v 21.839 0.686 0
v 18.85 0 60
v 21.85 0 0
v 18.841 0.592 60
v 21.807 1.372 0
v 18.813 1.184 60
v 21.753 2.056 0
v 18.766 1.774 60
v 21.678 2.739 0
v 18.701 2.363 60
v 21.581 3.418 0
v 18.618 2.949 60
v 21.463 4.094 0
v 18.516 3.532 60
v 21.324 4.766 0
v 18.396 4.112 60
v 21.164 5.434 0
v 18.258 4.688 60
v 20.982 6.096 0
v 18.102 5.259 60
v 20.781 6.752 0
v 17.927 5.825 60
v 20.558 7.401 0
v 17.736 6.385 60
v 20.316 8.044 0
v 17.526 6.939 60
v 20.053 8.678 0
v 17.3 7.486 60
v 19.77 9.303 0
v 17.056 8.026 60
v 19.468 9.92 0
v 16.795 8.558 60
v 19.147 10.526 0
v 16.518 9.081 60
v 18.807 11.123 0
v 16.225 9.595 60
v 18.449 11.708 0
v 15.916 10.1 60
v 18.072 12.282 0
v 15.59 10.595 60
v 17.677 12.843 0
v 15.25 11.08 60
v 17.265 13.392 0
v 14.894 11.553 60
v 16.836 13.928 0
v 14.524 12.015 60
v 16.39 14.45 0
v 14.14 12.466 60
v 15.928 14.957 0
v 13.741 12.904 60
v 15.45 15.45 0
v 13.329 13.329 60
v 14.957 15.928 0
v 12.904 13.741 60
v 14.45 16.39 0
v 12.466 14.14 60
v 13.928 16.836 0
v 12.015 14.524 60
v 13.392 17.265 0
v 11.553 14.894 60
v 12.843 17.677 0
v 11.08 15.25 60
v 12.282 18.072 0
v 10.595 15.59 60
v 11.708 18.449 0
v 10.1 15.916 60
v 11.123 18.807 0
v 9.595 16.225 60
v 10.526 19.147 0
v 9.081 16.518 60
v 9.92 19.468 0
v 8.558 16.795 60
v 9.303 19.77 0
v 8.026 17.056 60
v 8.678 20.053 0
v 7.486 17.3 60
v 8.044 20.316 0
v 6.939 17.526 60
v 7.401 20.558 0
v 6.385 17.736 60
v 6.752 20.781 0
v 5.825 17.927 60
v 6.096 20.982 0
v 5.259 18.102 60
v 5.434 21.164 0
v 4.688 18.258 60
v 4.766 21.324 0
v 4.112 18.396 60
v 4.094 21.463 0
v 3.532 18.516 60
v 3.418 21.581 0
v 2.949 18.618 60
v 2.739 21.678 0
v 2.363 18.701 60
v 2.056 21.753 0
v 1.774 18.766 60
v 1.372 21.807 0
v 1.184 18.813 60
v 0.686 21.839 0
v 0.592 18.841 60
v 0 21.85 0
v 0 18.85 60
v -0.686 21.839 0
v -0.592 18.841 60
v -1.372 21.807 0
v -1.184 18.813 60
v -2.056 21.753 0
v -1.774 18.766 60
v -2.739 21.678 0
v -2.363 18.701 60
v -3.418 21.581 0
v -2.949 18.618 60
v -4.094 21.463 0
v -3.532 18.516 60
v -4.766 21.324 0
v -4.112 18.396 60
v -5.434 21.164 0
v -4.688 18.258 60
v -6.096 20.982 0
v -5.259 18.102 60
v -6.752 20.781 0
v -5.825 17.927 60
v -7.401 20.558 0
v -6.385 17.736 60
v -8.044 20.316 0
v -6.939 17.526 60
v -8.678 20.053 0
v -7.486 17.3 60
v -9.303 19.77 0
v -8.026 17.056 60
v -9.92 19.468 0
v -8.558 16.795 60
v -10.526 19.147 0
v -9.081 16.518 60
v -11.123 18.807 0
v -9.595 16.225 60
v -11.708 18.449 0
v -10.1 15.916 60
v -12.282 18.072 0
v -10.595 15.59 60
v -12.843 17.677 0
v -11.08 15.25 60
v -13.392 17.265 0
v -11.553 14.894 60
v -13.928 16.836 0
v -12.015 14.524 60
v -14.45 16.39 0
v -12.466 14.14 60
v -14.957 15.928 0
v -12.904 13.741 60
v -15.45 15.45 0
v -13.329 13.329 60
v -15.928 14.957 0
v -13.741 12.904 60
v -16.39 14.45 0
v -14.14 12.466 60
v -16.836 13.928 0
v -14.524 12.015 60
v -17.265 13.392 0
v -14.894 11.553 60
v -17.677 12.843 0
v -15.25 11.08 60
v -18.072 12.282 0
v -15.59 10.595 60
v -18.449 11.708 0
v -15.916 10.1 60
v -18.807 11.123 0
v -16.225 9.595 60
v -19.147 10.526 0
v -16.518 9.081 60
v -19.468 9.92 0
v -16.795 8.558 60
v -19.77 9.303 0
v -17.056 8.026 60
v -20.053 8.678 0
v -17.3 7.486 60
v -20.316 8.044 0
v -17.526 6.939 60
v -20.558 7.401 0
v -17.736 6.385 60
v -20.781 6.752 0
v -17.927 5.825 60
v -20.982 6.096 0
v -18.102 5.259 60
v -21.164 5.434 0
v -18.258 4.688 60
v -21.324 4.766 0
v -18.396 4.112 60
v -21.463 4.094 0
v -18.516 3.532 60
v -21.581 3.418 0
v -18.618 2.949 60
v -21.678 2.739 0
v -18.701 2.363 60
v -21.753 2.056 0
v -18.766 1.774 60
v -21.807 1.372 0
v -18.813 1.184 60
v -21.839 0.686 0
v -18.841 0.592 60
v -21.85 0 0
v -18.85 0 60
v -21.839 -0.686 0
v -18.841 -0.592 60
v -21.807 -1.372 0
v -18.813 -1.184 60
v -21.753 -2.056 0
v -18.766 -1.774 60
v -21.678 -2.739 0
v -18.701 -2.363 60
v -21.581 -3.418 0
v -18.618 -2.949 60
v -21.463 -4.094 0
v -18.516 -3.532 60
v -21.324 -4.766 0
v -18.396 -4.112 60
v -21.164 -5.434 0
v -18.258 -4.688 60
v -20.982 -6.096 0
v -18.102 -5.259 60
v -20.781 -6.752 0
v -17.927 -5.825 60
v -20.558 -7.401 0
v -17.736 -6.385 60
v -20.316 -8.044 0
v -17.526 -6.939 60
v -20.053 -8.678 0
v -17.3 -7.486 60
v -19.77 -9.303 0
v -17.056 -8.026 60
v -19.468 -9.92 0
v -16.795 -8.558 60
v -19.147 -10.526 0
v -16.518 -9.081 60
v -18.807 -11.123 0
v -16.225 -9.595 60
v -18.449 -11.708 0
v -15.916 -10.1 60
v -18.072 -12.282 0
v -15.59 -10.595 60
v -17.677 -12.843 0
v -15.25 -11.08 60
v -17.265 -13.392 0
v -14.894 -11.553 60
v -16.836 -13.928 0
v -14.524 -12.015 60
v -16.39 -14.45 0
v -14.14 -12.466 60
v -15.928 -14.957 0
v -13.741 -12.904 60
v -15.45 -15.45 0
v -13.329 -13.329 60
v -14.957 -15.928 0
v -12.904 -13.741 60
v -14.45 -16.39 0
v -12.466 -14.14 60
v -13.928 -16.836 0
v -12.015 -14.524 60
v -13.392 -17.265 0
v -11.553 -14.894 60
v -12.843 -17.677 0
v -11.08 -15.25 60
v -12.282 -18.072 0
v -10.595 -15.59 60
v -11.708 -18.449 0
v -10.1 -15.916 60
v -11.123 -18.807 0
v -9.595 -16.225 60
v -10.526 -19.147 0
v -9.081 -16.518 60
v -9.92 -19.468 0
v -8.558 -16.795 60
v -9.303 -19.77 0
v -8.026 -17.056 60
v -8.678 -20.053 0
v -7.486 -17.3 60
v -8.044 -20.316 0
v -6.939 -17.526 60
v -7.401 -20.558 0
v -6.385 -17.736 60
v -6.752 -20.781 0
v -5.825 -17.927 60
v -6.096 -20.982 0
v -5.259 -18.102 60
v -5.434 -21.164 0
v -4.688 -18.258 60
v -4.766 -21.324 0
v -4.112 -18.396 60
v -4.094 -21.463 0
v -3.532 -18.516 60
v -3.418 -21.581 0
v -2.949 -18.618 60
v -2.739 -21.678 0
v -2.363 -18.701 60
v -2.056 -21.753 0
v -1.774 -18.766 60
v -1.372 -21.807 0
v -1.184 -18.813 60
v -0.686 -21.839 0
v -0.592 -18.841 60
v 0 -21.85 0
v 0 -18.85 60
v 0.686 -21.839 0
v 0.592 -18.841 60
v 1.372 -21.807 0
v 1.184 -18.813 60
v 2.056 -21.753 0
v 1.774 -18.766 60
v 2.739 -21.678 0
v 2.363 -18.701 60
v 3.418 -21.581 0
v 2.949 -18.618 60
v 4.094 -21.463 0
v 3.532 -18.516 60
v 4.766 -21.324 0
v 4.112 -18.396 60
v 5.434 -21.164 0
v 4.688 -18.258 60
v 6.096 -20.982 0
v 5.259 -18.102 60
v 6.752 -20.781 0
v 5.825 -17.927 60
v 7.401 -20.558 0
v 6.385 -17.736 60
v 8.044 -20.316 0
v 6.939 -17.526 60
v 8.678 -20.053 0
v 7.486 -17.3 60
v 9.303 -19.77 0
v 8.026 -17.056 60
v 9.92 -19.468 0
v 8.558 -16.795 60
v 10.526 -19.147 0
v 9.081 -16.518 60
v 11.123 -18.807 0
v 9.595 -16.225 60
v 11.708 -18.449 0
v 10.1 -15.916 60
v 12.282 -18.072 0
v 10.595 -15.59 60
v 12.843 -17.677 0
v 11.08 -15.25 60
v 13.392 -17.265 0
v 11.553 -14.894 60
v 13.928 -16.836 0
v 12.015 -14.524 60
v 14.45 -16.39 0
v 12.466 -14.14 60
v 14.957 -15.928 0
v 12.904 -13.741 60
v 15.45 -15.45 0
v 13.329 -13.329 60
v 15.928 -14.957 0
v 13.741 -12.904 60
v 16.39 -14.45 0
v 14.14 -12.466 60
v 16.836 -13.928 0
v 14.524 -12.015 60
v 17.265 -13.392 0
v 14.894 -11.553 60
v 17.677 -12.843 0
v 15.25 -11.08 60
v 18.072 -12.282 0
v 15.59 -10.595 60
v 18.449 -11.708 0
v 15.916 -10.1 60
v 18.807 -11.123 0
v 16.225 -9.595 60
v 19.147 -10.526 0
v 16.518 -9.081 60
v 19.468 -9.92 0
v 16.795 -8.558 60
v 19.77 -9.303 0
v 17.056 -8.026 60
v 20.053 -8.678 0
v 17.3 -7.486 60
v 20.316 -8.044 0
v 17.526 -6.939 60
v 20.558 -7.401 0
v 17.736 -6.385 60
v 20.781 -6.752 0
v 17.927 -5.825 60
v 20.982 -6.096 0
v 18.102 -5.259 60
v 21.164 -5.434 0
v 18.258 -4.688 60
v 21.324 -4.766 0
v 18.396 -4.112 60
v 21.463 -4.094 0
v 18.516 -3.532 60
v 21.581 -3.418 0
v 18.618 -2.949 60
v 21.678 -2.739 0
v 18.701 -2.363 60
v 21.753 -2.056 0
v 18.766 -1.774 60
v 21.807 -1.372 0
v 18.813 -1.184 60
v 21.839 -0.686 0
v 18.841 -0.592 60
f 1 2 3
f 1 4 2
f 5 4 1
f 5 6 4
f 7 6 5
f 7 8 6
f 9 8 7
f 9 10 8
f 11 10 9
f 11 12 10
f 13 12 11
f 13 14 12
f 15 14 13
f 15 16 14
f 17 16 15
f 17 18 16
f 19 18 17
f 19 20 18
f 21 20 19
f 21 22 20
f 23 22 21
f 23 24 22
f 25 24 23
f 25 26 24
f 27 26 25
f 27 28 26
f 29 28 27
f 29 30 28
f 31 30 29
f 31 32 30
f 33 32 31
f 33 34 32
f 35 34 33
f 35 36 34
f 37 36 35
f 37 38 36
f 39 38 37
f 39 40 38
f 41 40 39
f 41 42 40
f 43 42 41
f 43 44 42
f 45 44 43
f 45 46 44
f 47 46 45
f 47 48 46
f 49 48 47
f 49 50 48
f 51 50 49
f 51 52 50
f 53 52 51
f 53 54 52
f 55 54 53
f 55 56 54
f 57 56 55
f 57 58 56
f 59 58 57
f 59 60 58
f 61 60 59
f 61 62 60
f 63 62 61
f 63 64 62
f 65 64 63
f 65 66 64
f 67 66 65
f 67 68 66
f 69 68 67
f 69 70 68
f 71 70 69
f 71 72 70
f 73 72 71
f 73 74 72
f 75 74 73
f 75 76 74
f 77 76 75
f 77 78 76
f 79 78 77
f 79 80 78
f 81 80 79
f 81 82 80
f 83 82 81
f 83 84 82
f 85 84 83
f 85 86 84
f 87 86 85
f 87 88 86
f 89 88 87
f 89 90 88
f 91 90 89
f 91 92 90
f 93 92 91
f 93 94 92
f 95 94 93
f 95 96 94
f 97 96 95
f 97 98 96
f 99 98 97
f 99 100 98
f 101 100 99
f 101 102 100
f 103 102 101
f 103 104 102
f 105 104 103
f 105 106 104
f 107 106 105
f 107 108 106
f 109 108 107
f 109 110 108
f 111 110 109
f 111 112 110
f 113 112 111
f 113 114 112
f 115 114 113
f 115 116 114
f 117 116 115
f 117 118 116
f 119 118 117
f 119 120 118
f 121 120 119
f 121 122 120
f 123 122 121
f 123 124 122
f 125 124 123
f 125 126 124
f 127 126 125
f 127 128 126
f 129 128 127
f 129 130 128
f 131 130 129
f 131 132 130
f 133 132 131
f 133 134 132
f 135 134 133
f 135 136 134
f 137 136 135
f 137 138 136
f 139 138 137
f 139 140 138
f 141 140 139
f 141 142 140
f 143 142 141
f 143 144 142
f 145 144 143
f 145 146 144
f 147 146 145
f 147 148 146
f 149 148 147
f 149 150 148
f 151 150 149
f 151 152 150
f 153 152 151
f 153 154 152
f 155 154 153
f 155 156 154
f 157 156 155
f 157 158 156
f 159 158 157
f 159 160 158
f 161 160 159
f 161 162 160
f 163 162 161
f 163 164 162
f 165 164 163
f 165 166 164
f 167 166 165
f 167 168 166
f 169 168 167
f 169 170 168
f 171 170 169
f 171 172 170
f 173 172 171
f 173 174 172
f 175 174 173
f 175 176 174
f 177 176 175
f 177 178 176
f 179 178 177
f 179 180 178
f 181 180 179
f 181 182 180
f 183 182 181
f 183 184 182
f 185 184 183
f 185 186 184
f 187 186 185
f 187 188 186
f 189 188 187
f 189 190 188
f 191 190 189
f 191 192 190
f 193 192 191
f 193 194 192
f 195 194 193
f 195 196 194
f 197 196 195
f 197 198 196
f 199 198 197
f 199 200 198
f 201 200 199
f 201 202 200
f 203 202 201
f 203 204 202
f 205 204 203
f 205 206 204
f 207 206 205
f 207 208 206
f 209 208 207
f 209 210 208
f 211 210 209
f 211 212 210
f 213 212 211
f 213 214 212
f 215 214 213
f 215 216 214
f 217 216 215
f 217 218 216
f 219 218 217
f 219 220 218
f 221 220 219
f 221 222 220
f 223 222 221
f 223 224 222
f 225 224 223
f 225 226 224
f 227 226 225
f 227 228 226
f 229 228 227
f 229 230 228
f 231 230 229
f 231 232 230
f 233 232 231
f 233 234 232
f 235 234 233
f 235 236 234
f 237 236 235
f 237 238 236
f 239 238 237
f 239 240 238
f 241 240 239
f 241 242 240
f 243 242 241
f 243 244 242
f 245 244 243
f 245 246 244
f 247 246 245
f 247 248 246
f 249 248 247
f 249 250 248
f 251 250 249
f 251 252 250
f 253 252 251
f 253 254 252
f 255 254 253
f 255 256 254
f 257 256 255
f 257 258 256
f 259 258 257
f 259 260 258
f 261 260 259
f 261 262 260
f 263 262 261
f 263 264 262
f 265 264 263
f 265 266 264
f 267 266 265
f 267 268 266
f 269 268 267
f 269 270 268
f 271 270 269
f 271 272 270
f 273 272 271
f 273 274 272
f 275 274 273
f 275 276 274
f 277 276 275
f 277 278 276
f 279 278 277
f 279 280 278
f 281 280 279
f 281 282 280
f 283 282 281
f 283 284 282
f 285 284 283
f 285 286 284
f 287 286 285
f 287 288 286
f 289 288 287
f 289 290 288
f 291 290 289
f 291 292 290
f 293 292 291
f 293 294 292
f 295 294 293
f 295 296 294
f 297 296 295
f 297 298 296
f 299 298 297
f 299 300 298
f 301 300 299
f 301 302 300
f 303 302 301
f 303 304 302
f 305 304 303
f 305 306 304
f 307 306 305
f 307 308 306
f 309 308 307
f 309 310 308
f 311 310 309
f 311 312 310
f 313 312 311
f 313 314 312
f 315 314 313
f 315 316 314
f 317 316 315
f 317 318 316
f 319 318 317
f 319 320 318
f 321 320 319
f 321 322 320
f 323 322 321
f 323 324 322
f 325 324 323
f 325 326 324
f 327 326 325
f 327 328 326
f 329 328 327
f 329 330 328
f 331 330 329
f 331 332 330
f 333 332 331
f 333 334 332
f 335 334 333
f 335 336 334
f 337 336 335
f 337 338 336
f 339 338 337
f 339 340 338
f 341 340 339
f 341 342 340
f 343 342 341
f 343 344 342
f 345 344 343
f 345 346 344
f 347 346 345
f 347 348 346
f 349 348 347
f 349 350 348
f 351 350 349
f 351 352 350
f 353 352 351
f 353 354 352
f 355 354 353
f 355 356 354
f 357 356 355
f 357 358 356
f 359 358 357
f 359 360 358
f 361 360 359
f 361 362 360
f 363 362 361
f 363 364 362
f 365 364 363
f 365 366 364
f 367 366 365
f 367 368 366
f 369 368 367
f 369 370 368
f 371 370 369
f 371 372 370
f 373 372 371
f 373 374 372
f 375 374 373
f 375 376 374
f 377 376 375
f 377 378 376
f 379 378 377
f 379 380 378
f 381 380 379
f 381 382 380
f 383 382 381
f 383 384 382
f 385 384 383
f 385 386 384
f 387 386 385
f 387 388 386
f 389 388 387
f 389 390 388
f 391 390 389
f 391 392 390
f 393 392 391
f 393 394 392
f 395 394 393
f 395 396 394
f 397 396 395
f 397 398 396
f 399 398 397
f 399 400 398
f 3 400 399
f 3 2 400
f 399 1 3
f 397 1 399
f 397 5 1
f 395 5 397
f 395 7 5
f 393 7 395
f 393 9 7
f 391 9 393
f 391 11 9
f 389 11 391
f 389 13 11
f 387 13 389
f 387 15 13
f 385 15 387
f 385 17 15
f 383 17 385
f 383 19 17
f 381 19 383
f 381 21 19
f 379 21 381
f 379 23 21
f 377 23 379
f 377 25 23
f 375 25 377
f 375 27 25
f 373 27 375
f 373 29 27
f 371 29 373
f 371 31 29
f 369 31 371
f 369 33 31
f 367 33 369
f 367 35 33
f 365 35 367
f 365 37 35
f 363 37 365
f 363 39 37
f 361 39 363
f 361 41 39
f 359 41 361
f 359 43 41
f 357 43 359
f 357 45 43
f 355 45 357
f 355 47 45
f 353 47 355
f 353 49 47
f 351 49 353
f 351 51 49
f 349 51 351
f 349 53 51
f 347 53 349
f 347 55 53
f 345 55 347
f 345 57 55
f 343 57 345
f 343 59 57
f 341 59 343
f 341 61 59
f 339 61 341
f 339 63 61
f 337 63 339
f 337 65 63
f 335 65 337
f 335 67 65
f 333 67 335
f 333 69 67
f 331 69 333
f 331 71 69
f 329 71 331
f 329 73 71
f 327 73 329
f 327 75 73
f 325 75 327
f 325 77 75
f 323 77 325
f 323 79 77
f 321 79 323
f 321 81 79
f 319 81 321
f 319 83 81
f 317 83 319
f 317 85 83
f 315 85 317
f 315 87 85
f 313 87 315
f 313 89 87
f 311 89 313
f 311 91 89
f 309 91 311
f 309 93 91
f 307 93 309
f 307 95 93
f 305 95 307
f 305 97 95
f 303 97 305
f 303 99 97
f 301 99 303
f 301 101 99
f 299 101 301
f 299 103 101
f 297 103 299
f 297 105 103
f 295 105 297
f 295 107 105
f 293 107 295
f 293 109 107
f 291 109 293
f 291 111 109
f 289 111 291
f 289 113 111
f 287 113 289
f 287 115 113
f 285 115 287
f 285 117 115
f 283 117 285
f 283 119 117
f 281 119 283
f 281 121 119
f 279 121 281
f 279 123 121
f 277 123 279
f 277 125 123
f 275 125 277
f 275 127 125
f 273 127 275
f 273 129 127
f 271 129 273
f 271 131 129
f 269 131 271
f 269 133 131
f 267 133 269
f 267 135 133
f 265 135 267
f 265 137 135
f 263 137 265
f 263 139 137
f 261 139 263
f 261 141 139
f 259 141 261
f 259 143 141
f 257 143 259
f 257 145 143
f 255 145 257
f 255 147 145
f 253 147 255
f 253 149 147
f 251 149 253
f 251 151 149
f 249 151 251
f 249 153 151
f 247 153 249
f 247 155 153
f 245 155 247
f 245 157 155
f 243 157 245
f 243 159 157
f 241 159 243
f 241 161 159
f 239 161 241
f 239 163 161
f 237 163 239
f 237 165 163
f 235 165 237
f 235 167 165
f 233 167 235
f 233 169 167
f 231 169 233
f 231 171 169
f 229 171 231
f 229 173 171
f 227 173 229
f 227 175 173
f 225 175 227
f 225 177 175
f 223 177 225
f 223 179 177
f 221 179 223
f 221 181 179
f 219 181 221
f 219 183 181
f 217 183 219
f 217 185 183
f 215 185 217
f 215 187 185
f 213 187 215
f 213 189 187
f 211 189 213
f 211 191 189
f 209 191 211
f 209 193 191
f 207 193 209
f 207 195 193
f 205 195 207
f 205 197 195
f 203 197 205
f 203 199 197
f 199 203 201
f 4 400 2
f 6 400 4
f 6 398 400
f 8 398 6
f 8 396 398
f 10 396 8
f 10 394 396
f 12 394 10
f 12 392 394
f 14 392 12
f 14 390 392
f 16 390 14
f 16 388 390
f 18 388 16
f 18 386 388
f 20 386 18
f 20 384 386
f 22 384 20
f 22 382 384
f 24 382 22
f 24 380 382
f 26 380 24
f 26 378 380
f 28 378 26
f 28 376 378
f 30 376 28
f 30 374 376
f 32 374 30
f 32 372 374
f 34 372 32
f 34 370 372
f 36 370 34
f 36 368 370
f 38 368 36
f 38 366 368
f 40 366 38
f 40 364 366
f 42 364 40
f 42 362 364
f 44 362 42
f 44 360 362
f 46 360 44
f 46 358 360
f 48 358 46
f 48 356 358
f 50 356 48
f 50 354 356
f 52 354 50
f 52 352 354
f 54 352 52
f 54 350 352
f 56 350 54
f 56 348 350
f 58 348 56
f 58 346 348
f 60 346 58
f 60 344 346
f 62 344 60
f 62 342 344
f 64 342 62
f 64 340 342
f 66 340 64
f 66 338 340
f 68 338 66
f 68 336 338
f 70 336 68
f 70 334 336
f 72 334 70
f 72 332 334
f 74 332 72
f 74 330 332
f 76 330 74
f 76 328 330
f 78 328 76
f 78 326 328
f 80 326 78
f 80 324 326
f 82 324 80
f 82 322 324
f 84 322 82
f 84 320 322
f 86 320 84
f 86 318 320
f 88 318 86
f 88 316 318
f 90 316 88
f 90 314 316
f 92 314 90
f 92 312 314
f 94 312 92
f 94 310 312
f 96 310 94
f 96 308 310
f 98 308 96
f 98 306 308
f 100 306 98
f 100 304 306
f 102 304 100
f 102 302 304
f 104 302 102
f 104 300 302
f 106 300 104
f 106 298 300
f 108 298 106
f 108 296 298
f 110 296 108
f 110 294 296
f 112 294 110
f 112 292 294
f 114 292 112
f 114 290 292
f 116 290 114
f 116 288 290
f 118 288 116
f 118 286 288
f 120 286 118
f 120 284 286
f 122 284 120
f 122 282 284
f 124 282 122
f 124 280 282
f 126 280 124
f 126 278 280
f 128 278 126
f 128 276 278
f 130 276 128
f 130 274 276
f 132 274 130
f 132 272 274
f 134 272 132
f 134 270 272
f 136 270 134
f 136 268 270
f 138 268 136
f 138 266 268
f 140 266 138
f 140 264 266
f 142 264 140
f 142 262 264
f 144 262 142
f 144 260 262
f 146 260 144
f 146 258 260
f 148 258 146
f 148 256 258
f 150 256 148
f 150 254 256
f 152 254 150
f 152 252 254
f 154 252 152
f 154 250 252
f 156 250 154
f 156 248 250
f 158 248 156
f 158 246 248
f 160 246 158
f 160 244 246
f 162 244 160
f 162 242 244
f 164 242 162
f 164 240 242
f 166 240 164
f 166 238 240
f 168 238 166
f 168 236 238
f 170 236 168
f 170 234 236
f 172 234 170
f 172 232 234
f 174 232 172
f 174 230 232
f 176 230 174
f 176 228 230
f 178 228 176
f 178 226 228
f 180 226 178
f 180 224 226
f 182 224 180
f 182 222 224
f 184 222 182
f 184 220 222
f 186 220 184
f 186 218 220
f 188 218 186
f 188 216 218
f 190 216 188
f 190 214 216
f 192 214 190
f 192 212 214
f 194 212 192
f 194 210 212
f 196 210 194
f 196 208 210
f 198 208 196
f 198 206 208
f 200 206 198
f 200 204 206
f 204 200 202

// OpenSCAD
$fn=200;
d_tool=40.7;
d_tool_offset=3;
tool_height=60;

module create_measurement_tool()
{
    cylinder(h=tool_height, 
    d1=d_tool+d_tool_offset, 
    d2=d_tool-d_tool_offset); 
}

create_measurement_tool();
